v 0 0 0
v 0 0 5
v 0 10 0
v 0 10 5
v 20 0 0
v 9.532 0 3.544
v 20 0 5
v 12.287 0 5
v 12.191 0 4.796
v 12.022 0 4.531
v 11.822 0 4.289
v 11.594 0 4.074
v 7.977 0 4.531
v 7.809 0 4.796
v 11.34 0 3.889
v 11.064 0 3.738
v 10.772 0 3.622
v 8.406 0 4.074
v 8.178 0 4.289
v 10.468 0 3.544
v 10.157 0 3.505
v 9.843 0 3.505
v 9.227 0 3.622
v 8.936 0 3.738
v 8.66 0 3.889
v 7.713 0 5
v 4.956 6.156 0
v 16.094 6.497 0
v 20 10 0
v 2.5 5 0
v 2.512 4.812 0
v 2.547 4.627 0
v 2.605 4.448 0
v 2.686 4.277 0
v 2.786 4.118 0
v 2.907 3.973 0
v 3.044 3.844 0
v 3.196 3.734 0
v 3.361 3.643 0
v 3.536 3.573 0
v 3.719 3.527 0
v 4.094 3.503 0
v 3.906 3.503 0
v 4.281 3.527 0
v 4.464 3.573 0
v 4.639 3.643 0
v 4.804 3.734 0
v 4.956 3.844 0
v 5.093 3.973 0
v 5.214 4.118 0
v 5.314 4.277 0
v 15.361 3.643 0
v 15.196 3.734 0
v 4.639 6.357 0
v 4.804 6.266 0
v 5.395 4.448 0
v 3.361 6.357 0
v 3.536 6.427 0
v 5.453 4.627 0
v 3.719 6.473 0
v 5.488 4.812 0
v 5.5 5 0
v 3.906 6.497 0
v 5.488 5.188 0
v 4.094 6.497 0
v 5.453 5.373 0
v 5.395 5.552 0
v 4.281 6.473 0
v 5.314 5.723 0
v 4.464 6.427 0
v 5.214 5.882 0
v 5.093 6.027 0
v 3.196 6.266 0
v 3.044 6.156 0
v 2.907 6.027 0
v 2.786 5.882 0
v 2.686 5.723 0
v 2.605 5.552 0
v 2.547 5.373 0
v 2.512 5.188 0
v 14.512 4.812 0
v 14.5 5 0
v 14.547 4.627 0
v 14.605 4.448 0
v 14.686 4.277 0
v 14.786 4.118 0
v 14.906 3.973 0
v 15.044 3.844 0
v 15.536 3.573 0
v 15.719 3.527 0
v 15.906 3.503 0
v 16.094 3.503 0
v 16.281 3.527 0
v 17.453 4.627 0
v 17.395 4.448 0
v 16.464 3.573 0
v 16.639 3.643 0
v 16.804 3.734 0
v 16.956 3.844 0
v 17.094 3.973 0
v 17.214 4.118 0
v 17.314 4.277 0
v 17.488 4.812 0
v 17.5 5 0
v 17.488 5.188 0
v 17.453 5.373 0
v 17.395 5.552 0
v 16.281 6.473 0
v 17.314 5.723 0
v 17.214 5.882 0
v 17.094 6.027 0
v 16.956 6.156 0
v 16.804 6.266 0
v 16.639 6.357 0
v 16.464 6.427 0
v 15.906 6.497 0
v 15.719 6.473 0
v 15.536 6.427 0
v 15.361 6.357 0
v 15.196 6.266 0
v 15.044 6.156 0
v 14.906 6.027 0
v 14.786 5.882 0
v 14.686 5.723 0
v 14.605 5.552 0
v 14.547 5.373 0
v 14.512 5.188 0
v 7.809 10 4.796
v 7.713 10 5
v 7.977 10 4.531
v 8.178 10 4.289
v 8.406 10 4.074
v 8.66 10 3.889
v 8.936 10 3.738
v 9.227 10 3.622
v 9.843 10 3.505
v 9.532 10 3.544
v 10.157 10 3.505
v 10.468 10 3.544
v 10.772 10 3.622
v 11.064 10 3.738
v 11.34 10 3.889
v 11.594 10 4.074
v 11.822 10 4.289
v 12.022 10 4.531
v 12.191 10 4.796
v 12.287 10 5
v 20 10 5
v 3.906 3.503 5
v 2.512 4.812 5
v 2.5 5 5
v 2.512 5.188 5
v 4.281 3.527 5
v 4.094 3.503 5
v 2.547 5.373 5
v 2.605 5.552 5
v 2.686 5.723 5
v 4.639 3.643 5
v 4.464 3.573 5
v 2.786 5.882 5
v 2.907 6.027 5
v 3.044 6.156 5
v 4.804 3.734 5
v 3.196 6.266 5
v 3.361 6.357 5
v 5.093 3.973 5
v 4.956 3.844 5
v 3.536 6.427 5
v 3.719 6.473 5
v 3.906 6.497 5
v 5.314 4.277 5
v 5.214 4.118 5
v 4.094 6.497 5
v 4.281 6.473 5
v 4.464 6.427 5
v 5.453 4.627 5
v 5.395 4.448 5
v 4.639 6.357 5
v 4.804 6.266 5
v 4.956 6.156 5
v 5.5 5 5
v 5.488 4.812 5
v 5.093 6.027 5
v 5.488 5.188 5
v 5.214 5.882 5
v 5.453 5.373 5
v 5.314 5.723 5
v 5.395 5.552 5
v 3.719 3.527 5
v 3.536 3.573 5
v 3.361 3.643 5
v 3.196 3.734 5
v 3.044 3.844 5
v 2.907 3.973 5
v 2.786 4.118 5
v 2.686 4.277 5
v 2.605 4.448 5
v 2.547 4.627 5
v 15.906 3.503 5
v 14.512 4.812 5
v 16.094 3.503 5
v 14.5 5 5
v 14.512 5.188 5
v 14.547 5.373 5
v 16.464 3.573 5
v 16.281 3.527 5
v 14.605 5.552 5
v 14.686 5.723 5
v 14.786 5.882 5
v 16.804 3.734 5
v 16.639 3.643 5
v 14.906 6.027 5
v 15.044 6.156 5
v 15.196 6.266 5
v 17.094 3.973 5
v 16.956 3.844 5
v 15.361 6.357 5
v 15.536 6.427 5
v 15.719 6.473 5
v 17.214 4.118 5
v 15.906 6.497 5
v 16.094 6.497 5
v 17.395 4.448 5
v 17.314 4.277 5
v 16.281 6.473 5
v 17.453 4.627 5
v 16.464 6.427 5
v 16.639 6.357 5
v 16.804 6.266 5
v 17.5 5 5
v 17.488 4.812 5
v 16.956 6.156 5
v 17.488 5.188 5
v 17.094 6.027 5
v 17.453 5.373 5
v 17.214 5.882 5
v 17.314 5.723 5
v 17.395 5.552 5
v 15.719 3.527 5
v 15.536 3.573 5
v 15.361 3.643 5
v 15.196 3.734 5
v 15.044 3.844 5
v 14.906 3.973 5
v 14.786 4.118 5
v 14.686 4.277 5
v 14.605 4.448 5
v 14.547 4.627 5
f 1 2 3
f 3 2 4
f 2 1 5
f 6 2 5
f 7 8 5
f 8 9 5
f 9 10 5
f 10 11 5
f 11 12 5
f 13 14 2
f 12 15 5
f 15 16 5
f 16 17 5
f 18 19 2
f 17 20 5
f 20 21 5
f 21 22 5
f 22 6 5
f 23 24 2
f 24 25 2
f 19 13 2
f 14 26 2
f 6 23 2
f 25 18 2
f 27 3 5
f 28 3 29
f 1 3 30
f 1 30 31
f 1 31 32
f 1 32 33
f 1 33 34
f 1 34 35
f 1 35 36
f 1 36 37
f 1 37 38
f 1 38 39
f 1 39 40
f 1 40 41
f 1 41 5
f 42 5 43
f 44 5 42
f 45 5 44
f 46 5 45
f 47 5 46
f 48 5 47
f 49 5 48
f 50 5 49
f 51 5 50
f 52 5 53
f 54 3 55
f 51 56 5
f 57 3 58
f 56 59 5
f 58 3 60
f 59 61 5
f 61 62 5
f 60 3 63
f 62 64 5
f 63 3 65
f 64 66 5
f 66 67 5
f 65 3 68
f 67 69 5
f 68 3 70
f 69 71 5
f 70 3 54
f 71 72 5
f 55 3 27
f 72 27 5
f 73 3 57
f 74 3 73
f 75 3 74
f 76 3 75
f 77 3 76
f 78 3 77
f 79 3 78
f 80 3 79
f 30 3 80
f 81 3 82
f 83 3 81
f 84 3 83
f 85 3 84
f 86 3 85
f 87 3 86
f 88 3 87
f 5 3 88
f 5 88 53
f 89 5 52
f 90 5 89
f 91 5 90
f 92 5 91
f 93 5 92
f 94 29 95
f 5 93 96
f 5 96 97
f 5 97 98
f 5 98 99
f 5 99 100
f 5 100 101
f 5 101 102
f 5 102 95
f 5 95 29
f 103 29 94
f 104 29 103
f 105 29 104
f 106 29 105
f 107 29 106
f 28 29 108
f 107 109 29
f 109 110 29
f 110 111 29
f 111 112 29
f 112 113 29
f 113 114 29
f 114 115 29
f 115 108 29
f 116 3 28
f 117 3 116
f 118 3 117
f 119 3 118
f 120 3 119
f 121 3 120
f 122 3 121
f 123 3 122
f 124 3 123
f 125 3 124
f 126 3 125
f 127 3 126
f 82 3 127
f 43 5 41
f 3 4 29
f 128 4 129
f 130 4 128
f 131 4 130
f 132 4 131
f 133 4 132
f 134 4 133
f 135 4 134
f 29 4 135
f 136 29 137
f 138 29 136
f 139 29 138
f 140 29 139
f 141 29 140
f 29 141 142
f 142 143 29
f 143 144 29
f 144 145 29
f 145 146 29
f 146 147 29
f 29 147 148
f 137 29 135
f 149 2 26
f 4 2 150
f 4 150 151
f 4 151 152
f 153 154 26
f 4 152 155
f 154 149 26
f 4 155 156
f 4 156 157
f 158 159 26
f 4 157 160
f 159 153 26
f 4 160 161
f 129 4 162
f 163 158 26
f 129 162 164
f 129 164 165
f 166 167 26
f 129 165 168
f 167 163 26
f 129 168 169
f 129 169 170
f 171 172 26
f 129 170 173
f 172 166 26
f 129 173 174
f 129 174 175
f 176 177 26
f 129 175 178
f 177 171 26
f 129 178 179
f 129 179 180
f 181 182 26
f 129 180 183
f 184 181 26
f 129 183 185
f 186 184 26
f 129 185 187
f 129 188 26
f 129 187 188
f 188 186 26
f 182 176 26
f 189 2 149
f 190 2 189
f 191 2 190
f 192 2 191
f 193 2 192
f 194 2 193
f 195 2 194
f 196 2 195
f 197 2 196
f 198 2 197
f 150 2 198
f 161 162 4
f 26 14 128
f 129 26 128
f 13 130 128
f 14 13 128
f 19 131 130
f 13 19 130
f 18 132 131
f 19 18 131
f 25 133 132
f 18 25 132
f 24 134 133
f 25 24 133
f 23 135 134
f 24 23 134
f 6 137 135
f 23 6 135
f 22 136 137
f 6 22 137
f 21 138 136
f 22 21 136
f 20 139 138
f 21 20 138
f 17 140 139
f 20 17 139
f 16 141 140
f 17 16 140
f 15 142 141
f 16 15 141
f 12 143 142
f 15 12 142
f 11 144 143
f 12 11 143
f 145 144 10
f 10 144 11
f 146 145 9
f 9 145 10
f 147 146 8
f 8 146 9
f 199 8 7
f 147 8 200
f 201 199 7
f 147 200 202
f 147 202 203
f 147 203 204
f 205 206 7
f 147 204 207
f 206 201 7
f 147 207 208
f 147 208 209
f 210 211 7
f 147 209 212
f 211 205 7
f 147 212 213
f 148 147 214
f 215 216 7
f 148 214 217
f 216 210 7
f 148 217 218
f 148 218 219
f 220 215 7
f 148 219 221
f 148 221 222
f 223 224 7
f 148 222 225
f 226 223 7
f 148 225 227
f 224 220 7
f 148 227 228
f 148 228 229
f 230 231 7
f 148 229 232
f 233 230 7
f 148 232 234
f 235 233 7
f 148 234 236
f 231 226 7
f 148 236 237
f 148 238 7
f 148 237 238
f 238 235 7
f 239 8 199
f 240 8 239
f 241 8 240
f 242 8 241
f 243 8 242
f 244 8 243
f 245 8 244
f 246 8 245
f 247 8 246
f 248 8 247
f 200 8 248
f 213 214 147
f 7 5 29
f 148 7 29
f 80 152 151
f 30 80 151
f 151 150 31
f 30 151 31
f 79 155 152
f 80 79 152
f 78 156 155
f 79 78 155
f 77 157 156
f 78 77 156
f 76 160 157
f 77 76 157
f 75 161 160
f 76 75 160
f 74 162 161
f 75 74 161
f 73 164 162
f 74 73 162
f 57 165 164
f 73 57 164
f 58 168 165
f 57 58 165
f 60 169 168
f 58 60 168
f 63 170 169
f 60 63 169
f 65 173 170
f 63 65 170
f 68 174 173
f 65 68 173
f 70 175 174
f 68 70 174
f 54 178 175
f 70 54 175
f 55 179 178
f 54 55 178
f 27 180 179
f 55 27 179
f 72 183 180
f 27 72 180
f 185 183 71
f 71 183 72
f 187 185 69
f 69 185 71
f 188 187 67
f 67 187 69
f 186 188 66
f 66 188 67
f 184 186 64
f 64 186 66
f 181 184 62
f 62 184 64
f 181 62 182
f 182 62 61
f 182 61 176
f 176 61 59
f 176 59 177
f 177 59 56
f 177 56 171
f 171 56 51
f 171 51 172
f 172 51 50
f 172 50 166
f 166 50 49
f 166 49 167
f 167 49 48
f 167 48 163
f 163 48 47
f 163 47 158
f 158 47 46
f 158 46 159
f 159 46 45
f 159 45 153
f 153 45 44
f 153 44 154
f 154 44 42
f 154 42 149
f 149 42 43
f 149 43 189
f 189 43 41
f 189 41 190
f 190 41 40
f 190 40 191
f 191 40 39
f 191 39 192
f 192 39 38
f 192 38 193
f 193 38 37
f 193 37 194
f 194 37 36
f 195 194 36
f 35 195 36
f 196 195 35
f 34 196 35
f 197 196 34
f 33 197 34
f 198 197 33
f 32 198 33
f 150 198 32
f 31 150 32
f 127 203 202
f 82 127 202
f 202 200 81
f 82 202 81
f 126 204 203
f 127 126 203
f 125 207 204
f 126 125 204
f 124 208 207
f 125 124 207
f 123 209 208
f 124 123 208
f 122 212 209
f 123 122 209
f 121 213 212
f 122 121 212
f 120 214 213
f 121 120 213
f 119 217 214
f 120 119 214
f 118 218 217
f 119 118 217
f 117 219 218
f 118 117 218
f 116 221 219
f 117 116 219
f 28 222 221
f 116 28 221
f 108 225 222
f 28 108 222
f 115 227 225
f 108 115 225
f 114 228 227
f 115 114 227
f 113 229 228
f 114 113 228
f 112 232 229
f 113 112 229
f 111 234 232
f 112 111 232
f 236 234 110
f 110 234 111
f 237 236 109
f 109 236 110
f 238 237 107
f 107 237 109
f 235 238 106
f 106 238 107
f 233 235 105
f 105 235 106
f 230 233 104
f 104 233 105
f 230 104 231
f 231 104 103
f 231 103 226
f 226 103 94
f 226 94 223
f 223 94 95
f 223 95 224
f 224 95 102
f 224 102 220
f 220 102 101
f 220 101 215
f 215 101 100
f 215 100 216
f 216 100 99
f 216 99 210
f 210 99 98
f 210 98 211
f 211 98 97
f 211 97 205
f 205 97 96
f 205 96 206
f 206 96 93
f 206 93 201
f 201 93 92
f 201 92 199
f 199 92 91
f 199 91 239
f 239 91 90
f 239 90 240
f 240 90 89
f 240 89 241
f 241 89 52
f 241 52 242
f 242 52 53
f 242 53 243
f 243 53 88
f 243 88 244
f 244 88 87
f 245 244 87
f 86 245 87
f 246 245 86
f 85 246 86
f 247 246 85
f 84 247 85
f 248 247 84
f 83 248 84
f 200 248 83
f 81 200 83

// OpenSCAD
$fn=50;
difference(){
cube([20,10,5]);

translate([4,5,0])
cylinder(r1=1.5,r2=1.5,h=7);

translate([16,5,0])
cylinder(r1=1.5,r2=1.5,h=7);

translate([10,11,6])
rotate([90,0,0])
cylinder(r1=2.5,r2=2.5,h=12);

}
